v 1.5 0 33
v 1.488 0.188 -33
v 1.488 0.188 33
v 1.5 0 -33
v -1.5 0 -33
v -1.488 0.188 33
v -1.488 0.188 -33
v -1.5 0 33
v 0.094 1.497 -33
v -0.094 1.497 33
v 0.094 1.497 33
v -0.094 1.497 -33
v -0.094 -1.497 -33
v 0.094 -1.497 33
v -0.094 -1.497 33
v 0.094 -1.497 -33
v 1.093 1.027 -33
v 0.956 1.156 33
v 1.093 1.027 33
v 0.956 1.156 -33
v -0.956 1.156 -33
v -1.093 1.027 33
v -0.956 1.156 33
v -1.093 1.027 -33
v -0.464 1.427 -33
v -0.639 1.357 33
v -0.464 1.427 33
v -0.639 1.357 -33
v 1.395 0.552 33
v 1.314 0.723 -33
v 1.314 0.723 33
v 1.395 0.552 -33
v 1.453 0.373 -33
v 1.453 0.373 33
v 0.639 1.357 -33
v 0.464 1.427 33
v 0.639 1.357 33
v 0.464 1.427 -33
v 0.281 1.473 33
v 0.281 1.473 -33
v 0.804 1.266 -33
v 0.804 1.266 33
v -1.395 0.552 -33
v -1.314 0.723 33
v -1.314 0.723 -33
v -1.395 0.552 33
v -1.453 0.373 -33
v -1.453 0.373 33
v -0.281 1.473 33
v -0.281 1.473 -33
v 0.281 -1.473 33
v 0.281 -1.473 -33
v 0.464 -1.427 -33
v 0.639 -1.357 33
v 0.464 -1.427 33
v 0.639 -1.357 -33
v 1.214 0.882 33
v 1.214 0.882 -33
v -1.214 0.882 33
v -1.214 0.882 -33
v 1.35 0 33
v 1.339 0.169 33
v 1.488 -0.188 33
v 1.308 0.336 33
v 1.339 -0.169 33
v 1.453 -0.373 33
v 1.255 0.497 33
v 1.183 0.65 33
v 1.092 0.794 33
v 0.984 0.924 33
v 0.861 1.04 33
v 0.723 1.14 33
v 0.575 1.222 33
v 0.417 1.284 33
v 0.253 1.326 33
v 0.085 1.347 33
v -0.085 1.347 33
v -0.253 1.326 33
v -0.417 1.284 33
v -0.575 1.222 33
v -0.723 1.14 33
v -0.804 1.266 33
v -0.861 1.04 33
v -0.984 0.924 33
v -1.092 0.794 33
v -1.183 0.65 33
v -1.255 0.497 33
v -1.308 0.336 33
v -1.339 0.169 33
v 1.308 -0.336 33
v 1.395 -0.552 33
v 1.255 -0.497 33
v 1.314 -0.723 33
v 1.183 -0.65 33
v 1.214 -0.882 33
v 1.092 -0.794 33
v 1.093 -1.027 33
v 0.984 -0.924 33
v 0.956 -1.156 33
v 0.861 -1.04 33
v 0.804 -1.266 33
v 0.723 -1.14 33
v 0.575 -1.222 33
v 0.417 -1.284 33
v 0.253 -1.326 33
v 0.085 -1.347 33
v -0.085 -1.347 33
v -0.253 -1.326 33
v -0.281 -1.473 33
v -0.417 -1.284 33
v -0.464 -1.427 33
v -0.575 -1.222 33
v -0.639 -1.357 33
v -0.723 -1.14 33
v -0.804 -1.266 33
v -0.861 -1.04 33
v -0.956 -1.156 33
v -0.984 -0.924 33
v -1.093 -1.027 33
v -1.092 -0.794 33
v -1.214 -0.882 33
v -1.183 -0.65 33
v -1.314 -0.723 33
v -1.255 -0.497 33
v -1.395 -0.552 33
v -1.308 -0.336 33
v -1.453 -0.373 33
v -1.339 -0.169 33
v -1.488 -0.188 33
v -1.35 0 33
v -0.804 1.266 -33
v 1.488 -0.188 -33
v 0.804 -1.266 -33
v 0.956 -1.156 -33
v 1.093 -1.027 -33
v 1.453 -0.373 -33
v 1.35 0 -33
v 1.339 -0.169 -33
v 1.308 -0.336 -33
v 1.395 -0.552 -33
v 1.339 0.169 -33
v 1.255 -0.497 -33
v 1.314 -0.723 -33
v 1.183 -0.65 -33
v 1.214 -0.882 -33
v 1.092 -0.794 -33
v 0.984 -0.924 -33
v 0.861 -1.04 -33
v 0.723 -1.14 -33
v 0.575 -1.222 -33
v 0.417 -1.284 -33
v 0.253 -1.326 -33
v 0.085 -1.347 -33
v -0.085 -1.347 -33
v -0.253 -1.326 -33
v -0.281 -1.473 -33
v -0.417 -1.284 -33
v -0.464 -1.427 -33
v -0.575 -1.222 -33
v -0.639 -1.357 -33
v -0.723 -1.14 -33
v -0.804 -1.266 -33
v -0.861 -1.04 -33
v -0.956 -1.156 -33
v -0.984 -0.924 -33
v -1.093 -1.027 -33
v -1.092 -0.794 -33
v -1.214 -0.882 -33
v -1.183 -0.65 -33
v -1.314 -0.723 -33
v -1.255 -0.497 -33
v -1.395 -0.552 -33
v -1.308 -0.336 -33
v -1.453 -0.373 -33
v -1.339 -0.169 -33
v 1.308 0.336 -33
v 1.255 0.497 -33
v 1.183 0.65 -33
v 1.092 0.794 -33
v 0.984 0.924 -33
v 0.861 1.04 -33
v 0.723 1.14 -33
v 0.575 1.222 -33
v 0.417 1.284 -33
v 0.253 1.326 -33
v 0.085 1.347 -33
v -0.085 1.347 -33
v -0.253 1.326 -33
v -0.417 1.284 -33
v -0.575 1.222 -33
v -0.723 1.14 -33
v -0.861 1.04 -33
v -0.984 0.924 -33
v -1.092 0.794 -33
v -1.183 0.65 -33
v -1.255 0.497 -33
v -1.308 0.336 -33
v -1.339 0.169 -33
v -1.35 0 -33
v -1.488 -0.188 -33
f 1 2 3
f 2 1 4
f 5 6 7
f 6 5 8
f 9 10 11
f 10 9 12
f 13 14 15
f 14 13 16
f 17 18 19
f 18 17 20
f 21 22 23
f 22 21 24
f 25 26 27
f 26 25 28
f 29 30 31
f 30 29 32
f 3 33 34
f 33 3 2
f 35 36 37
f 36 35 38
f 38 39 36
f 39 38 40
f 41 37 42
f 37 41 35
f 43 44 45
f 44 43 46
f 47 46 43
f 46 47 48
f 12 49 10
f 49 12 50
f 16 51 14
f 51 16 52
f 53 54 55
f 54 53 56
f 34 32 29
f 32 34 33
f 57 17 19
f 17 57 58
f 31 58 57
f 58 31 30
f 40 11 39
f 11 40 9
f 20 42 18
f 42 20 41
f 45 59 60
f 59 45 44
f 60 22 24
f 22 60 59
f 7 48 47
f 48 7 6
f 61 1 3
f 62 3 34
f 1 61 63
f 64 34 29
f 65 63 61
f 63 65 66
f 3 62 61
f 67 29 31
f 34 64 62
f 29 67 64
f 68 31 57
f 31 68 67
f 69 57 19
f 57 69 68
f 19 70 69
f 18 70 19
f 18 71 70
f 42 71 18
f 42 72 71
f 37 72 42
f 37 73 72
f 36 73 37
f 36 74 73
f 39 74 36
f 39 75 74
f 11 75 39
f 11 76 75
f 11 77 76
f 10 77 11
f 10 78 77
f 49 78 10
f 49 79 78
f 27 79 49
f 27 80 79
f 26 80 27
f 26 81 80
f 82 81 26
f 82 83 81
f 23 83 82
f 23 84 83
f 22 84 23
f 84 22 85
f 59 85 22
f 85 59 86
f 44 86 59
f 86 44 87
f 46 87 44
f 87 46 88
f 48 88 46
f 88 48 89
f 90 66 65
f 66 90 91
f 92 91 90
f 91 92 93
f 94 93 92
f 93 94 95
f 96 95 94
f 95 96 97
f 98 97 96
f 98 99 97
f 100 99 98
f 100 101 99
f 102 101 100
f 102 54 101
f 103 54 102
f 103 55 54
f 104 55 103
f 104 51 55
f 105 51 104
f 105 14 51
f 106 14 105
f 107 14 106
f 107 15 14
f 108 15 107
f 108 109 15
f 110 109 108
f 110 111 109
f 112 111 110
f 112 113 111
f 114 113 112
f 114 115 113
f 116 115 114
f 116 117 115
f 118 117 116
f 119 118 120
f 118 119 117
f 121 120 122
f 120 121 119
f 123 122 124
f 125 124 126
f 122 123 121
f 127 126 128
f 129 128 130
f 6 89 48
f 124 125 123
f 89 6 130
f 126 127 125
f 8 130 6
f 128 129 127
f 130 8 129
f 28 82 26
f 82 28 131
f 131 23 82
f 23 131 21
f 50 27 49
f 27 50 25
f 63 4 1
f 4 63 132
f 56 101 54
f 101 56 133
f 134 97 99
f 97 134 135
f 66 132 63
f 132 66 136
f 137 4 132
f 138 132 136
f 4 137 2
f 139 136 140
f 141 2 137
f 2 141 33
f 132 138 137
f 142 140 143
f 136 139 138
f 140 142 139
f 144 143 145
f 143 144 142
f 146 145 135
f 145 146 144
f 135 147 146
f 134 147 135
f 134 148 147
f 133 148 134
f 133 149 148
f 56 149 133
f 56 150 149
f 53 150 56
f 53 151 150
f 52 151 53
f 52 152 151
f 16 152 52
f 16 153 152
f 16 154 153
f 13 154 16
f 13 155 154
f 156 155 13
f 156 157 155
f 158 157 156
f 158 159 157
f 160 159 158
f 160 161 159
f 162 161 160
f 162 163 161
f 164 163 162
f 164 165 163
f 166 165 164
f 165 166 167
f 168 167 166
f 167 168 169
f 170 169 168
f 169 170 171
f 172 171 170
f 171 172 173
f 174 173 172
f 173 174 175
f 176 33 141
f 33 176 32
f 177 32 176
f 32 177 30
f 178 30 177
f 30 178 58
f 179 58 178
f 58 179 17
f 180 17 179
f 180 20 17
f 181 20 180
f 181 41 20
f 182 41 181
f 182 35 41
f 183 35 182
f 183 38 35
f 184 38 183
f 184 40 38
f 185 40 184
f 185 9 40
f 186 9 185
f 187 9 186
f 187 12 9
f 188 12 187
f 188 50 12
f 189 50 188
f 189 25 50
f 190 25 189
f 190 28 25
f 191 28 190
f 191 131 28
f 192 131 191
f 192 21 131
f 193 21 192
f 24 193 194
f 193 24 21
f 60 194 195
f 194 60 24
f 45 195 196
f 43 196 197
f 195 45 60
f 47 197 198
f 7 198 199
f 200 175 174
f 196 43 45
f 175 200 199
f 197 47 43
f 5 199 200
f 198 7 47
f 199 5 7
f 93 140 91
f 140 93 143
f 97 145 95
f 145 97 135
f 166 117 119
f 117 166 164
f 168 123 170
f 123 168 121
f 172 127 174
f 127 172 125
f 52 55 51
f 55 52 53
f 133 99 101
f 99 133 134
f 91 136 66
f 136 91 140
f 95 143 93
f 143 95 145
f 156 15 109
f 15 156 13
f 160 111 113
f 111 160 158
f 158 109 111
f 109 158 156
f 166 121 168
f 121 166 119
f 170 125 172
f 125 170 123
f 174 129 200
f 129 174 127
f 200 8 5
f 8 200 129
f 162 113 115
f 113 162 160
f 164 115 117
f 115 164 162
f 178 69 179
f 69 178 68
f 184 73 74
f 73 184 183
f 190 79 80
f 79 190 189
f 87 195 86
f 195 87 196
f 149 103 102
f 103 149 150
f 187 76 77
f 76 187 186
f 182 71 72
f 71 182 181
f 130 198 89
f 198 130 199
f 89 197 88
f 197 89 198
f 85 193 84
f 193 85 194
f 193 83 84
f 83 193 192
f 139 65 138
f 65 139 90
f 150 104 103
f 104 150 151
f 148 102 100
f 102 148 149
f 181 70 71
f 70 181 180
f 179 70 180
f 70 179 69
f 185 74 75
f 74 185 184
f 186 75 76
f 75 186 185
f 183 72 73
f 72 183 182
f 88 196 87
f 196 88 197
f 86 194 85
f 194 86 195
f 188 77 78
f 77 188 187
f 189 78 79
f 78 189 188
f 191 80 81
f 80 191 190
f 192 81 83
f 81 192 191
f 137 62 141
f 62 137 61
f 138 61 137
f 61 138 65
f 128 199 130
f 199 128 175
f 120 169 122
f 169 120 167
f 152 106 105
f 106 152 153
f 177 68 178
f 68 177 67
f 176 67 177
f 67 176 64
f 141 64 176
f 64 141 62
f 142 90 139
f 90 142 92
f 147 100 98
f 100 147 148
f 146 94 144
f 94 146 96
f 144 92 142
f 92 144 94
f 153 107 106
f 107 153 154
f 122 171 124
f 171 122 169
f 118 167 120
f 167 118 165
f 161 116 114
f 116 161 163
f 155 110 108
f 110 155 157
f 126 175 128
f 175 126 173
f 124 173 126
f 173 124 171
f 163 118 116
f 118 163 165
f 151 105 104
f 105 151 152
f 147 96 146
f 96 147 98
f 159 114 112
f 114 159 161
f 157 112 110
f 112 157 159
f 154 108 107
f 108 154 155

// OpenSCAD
$fn = 50;


difference() {
	union() {
		translate(v = [0, 0, -33.0000000000]) {
			cylinder(h = 66, r = 1.5000000000);
		}
	}
	union() {
		translate(v = [0, 0, -100.0000000000]) {
			cylinder(h = 200, r = 1.3500000000);
		}
	}
}
